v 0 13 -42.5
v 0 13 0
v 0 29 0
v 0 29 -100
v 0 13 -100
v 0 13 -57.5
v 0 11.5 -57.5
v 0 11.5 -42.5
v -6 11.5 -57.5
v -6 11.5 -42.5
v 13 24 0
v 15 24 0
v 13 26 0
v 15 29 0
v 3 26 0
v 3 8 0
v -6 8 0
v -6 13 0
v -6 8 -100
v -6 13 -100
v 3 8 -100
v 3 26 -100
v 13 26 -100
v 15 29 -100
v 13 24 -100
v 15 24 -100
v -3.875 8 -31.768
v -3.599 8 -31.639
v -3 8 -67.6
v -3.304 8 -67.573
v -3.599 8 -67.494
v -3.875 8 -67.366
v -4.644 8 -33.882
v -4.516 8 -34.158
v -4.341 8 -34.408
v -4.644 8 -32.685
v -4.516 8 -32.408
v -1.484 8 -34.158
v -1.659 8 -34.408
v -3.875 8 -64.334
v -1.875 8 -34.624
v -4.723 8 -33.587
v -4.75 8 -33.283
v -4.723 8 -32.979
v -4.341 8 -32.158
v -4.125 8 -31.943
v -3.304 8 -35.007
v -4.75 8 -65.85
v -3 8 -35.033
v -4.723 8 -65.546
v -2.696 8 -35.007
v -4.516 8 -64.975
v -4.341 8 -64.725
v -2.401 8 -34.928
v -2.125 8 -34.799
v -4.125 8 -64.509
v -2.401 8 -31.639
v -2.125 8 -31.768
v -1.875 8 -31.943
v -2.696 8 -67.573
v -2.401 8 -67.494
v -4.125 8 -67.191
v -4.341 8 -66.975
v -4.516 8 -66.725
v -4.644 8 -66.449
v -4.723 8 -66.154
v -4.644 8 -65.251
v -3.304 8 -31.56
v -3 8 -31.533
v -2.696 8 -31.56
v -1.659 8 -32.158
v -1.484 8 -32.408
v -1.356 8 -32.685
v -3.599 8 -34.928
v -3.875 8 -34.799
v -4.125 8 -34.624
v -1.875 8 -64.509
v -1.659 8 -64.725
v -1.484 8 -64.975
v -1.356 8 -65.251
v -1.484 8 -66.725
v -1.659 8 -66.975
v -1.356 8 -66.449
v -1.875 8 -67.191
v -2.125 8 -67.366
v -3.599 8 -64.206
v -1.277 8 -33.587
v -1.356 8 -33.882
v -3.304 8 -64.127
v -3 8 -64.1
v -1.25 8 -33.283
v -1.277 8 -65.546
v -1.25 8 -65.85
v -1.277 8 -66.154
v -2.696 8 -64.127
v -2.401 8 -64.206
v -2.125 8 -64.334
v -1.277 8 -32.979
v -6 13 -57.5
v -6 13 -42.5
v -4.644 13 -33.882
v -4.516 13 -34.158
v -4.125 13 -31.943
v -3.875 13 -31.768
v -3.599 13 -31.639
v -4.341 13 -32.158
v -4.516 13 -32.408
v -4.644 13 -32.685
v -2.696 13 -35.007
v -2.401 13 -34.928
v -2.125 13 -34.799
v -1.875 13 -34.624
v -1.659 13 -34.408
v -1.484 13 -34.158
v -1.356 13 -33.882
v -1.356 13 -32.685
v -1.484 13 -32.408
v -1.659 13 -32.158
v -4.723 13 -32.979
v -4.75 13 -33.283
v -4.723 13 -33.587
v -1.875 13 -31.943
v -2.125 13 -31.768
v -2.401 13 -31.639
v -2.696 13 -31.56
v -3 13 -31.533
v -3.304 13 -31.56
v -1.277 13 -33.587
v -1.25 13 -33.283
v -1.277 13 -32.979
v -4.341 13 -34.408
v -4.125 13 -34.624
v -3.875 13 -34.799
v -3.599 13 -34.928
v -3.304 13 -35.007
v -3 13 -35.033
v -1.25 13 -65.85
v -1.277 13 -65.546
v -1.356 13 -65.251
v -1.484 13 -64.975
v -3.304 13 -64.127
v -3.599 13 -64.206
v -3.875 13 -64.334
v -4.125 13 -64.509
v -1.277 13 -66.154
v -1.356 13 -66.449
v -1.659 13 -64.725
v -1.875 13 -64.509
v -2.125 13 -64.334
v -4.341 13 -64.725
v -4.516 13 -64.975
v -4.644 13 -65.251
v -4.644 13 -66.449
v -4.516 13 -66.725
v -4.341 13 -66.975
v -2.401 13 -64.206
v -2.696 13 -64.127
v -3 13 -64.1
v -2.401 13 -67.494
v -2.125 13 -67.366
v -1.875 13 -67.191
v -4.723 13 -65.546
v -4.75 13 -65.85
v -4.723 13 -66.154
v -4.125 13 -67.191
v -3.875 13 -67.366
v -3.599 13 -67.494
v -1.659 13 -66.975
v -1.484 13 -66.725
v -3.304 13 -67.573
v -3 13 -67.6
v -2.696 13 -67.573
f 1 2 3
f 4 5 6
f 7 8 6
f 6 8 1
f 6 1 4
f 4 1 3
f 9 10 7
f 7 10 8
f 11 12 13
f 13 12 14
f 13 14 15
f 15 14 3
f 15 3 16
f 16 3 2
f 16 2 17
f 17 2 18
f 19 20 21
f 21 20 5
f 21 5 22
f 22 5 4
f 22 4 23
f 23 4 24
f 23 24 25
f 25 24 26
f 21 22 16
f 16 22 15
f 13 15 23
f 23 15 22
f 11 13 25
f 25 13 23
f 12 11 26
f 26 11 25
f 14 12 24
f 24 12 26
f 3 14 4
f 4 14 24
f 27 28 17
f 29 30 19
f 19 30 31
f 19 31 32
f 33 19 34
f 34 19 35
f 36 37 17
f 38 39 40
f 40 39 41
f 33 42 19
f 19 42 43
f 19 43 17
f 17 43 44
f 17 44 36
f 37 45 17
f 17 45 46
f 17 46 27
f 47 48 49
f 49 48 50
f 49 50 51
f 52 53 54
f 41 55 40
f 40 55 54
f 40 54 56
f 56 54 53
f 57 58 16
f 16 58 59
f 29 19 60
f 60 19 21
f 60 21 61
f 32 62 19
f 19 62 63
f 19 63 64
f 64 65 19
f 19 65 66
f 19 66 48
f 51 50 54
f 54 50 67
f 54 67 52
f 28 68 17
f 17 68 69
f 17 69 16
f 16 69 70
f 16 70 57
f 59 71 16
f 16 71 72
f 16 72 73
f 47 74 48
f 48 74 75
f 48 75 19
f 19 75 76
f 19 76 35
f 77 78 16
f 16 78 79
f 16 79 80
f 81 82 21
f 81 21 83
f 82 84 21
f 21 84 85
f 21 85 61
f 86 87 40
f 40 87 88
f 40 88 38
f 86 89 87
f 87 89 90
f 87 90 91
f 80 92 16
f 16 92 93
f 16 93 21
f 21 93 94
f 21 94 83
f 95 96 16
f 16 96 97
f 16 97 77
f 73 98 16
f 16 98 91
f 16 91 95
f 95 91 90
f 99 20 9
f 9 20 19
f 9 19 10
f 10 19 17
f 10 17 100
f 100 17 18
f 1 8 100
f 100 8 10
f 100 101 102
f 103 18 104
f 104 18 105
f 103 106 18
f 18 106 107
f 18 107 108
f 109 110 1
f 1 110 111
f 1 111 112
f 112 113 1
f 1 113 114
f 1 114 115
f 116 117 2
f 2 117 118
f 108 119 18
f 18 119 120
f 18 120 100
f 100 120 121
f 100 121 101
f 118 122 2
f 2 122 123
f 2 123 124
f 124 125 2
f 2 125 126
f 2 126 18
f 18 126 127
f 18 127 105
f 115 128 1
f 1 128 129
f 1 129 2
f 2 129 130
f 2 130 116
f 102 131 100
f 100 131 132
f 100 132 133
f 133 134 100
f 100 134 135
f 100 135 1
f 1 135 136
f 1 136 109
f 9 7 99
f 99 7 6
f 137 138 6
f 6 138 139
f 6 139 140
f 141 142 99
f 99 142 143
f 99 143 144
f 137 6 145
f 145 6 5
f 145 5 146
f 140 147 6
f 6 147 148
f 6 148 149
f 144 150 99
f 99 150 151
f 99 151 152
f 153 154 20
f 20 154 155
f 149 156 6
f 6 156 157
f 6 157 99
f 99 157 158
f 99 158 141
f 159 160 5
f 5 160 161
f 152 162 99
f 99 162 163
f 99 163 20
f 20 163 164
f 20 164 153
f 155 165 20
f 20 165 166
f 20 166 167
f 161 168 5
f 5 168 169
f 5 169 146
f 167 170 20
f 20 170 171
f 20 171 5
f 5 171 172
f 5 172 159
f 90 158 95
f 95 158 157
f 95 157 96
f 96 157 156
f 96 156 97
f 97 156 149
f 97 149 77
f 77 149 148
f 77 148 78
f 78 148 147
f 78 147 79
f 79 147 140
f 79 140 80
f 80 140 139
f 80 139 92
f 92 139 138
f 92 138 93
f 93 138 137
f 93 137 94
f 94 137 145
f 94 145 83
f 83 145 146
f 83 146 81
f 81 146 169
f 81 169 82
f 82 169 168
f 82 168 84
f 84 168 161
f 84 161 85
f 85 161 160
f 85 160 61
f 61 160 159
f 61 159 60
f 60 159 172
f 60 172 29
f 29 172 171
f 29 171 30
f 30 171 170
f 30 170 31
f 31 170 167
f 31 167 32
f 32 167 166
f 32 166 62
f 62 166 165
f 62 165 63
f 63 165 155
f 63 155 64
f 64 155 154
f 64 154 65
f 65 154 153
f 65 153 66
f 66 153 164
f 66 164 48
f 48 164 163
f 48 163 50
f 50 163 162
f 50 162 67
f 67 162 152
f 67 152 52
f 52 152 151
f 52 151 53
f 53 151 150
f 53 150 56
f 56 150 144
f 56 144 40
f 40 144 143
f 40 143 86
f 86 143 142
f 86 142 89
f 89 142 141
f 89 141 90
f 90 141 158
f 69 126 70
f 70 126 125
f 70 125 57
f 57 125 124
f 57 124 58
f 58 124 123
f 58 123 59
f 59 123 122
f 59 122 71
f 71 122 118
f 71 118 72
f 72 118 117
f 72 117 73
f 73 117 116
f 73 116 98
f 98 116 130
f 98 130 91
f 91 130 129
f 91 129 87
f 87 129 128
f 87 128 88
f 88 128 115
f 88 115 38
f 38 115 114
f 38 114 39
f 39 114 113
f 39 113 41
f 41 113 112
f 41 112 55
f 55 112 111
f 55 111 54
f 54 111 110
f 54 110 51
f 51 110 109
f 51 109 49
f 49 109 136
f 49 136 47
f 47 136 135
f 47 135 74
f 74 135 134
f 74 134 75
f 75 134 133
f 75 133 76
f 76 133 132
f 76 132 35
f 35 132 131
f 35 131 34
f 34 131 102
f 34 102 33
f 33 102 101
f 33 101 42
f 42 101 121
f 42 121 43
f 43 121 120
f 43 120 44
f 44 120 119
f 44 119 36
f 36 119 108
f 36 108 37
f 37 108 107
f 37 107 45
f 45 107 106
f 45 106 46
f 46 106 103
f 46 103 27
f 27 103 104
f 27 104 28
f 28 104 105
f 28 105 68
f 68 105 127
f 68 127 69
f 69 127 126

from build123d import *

# Parameters (mm, degrees)
SKETCH1_W            = 100
SKETCH1_H            = 26
BOSS_EXTRUDE1_DEPTH  = 2
BOSS_EXTRUDE2_DEPTH  = 100
MOVE_START           = -100
MOVE_FACE1_OUTLINE_W = 2
MOVE_FACE1_OUTLINE_H = 28
MOVE_FACE1_DEPTH     = 100
SKETCH5_W            = 100
SKETCH5_H            = 4
BOSS_EXTRUDE3_DEPTH  = 6
SKETCH6_W            = 100
SKETCH6_H            = 4
BOSS_EXTRUDE4_DEPTH  = 4
SKETCH7_W            = 6
SKETCH7_H            = 100
BOSS_EXTRUDE5_DEPTH  = 11.5
MOVE_FACE2_BY        = 12
SKETCH8_W            = 6
SKETCH8_H            = 42.5
BOSS_EXTRUDE6_DEPTH  = 1.5
SKETCH9_R            = 1.75
CUT_EXTRUDE1_DEPTH   = 103.376755174
MOVE_FACE3_BY        = 1
MOVE_FACE3_2_BY      = 1
MOVE_FACE3_3_BY      = 1
MOVE_FACE4_BY        = 1


# Read off the part's stored shape, not the designer's step: Move Face1
with BuildPart() as part:
    # Sketch1 → Boss-Extrude1 (new body)
    with BuildSketch(Plane(origin=(0, 0, 0), x_dir=(0, 0, -1), z_dir=(1, 0, 0))):
        with Locations((50, 13)):
            Rectangle(SKETCH1_W, SKETCH1_H)
    extrude(amount=BOSS_EXTRUDE1_DEPTH)

    # Sketch2 → Boss-Extrude2 (add)
    with BuildSketch(Plane.XY):
        Polygon((2, 26), (2, 28), (-12, 28), (-12, 24), (-10, 24), (-10, 26), align=None)
    extrude(amount=-BOSS_EXTRUDE2_DEPTH)


with BuildPart() as body_2:
    # Mirror1: mirrored copy
    add(part.part.mirror(Plane.ZY.offset(-2)))

    # Move Face1 outline → Move Face1 (add)
    with BuildSketch(Plane.XY.offset(MOVE_START)):
        with Locations((1, 14)):
            Rectangle(MOVE_FACE1_OUTLINE_W, MOVE_FACE1_OUTLINE_H)
    extrude(amount=MOVE_FACE1_DEPTH)



with BuildPart() as body_2_2:
    # Sketch5 → Boss-Extrude3 (new body)
    with BuildSketch(Plane.ZY):
        with Locations((-50, -2)):
            Rectangle(SKETCH5_W, SKETCH5_H)
    extrude(amount=BOSS_EXTRUDE3_DEPTH)


with BuildPart() as body_2_1:
    add(body_2.part)

    add(body_2_2.part)  # Boss-Extrude4 merges body 2 2
    # Sketch6 → Boss-Extrude4 (add)
    with BuildSketch(Plane(origin=(0, 0, 0), x_dir=(0, 0, -1), z_dir=(1, 0, 0))):
        with Locations((50, -2)):
            Rectangle(SKETCH6_W, SKETCH6_H)
    extrude(amount=BOSS_EXTRUDE4_DEPTH)

    # Sketch7 → Boss-Extrude5 (add)
    with BuildSketch(Plane(origin=(0, 0, 0), x_dir=(1, 0, 0), z_dir=(0, 1, 0))):
        with Locations((-3, 50)):
            Rectangle(SKETCH7_W, SKETCH7_H)
    extrude(amount=BOSS_EXTRUDE5_DEPTH)

    # Move Face2: a face moved inward by 12.0
    extrude(body_2_1.faces().sort_by_distance((-1, -4, -50))[0], amount=MOVE_FACE2_BY, dir=(0, 1, 0), mode=Mode.SUBTRACT)

    # Sketch8 → Boss-Extrude6 (add)
    with BuildSketch(Plane(origin=(0, 11.5, 0), x_dir=(1, 0, 0), z_dir=(0, 1, 0))):
        with Locations((-3, 78.75)):
            Rectangle(SKETCH8_W, SKETCH8_H)
        with Locations((-3, 21.25)):
            Rectangle(SKETCH8_W, SKETCH8_H)
    extrude(amount=BOSS_EXTRUDE6_DEPTH)

    # Sketch9 → Cut-Extrude1 (cut, through all)
    with BuildSketch(Plane(origin=(0, 13, 0), x_dir=(1, 0, 0), z_dir=(0, 1, 0))):
        with Locations(Location((-3, 33.28320942, 0), (0, 0, 270))):
            Circle(SKETCH9_R)
        with Locations(Location((-3, 65.85, 0), (0, 0, 270))):
            Circle(SKETCH9_R)
    extrude(amount=-CUT_EXTRUDE1_DEPTH, mode=Mode.SUBTRACT)

    # Move Face3: a face moved inward by 1.0
    extrude(body_2_1.faces().sort_by_distance((16, 26, -50))[0], amount=MOVE_FACE3_BY, dir=(-1, 0, 0), mode=Mode.SUBTRACT)

    # Move Face3 2: a face moved inward by 1.0
    extrude(body_2_1.faces().sort_by_distance((4, 17, -50))[0], amount=MOVE_FACE3_2_BY, dir=(-1, 0, 0), mode=Mode.SUBTRACT)

    # Move Face3 3: a face moved outward by 1.0
    extrude(body_2_1.faces().sort_by_distance((14, 25, -50))[0], amount=MOVE_FACE3_3_BY, dir=(-1, 0, 0))

    # Move Face4: a face moved outward by 1.0
    extrude(body_2_1.faces().sort_by_distance((7.5, 28, -50))[0], amount=MOVE_FACE4_BY, dir=(0, 1, 0))


solid = body_2_1.part
